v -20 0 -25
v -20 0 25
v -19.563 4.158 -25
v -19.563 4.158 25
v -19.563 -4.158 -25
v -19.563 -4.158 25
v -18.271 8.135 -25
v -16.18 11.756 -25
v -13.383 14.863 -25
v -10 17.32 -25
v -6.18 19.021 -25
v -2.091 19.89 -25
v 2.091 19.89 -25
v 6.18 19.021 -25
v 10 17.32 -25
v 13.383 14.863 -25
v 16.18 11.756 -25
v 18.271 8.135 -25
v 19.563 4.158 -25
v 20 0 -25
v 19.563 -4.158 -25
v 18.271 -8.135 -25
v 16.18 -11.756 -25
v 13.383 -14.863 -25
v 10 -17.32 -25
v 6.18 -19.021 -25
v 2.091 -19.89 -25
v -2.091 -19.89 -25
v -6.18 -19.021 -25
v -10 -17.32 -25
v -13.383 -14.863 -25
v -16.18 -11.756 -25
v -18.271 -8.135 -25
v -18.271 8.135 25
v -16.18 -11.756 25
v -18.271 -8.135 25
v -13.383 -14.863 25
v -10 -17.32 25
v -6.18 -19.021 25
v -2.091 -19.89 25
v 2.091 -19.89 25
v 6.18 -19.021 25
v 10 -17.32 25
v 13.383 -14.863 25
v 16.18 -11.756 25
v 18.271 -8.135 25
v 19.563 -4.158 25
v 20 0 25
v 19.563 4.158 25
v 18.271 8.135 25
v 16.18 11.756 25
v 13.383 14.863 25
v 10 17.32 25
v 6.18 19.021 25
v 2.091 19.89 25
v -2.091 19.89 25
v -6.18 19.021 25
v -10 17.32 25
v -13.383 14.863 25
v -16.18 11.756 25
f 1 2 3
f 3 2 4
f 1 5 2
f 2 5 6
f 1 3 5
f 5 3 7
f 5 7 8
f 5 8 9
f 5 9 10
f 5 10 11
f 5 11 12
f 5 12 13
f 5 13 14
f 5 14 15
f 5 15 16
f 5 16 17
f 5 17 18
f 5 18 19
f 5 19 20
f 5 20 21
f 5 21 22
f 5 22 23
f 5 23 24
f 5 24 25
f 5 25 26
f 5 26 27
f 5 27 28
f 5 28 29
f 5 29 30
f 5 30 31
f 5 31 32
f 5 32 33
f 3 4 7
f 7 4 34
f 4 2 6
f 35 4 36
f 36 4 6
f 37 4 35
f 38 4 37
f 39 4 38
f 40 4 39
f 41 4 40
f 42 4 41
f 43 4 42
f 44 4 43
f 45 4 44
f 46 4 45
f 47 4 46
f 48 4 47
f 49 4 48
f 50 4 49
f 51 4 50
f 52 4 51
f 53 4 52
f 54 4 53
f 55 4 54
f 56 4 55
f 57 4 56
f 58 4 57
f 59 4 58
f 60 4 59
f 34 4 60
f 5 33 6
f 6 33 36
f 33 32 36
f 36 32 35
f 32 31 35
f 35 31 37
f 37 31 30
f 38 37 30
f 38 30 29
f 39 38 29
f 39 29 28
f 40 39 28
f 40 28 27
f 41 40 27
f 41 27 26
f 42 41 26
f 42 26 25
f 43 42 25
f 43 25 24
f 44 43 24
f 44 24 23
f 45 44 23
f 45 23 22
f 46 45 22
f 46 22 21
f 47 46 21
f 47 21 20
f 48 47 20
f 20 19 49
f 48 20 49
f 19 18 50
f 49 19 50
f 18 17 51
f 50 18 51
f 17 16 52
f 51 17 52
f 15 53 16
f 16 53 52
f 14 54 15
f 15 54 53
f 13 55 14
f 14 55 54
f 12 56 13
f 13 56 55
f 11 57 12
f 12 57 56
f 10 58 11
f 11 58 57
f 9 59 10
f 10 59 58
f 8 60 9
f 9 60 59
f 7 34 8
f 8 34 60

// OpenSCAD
intersection() {
    cube(50, center=true);
    cylinder(r=20, h=100, center=true);
}
